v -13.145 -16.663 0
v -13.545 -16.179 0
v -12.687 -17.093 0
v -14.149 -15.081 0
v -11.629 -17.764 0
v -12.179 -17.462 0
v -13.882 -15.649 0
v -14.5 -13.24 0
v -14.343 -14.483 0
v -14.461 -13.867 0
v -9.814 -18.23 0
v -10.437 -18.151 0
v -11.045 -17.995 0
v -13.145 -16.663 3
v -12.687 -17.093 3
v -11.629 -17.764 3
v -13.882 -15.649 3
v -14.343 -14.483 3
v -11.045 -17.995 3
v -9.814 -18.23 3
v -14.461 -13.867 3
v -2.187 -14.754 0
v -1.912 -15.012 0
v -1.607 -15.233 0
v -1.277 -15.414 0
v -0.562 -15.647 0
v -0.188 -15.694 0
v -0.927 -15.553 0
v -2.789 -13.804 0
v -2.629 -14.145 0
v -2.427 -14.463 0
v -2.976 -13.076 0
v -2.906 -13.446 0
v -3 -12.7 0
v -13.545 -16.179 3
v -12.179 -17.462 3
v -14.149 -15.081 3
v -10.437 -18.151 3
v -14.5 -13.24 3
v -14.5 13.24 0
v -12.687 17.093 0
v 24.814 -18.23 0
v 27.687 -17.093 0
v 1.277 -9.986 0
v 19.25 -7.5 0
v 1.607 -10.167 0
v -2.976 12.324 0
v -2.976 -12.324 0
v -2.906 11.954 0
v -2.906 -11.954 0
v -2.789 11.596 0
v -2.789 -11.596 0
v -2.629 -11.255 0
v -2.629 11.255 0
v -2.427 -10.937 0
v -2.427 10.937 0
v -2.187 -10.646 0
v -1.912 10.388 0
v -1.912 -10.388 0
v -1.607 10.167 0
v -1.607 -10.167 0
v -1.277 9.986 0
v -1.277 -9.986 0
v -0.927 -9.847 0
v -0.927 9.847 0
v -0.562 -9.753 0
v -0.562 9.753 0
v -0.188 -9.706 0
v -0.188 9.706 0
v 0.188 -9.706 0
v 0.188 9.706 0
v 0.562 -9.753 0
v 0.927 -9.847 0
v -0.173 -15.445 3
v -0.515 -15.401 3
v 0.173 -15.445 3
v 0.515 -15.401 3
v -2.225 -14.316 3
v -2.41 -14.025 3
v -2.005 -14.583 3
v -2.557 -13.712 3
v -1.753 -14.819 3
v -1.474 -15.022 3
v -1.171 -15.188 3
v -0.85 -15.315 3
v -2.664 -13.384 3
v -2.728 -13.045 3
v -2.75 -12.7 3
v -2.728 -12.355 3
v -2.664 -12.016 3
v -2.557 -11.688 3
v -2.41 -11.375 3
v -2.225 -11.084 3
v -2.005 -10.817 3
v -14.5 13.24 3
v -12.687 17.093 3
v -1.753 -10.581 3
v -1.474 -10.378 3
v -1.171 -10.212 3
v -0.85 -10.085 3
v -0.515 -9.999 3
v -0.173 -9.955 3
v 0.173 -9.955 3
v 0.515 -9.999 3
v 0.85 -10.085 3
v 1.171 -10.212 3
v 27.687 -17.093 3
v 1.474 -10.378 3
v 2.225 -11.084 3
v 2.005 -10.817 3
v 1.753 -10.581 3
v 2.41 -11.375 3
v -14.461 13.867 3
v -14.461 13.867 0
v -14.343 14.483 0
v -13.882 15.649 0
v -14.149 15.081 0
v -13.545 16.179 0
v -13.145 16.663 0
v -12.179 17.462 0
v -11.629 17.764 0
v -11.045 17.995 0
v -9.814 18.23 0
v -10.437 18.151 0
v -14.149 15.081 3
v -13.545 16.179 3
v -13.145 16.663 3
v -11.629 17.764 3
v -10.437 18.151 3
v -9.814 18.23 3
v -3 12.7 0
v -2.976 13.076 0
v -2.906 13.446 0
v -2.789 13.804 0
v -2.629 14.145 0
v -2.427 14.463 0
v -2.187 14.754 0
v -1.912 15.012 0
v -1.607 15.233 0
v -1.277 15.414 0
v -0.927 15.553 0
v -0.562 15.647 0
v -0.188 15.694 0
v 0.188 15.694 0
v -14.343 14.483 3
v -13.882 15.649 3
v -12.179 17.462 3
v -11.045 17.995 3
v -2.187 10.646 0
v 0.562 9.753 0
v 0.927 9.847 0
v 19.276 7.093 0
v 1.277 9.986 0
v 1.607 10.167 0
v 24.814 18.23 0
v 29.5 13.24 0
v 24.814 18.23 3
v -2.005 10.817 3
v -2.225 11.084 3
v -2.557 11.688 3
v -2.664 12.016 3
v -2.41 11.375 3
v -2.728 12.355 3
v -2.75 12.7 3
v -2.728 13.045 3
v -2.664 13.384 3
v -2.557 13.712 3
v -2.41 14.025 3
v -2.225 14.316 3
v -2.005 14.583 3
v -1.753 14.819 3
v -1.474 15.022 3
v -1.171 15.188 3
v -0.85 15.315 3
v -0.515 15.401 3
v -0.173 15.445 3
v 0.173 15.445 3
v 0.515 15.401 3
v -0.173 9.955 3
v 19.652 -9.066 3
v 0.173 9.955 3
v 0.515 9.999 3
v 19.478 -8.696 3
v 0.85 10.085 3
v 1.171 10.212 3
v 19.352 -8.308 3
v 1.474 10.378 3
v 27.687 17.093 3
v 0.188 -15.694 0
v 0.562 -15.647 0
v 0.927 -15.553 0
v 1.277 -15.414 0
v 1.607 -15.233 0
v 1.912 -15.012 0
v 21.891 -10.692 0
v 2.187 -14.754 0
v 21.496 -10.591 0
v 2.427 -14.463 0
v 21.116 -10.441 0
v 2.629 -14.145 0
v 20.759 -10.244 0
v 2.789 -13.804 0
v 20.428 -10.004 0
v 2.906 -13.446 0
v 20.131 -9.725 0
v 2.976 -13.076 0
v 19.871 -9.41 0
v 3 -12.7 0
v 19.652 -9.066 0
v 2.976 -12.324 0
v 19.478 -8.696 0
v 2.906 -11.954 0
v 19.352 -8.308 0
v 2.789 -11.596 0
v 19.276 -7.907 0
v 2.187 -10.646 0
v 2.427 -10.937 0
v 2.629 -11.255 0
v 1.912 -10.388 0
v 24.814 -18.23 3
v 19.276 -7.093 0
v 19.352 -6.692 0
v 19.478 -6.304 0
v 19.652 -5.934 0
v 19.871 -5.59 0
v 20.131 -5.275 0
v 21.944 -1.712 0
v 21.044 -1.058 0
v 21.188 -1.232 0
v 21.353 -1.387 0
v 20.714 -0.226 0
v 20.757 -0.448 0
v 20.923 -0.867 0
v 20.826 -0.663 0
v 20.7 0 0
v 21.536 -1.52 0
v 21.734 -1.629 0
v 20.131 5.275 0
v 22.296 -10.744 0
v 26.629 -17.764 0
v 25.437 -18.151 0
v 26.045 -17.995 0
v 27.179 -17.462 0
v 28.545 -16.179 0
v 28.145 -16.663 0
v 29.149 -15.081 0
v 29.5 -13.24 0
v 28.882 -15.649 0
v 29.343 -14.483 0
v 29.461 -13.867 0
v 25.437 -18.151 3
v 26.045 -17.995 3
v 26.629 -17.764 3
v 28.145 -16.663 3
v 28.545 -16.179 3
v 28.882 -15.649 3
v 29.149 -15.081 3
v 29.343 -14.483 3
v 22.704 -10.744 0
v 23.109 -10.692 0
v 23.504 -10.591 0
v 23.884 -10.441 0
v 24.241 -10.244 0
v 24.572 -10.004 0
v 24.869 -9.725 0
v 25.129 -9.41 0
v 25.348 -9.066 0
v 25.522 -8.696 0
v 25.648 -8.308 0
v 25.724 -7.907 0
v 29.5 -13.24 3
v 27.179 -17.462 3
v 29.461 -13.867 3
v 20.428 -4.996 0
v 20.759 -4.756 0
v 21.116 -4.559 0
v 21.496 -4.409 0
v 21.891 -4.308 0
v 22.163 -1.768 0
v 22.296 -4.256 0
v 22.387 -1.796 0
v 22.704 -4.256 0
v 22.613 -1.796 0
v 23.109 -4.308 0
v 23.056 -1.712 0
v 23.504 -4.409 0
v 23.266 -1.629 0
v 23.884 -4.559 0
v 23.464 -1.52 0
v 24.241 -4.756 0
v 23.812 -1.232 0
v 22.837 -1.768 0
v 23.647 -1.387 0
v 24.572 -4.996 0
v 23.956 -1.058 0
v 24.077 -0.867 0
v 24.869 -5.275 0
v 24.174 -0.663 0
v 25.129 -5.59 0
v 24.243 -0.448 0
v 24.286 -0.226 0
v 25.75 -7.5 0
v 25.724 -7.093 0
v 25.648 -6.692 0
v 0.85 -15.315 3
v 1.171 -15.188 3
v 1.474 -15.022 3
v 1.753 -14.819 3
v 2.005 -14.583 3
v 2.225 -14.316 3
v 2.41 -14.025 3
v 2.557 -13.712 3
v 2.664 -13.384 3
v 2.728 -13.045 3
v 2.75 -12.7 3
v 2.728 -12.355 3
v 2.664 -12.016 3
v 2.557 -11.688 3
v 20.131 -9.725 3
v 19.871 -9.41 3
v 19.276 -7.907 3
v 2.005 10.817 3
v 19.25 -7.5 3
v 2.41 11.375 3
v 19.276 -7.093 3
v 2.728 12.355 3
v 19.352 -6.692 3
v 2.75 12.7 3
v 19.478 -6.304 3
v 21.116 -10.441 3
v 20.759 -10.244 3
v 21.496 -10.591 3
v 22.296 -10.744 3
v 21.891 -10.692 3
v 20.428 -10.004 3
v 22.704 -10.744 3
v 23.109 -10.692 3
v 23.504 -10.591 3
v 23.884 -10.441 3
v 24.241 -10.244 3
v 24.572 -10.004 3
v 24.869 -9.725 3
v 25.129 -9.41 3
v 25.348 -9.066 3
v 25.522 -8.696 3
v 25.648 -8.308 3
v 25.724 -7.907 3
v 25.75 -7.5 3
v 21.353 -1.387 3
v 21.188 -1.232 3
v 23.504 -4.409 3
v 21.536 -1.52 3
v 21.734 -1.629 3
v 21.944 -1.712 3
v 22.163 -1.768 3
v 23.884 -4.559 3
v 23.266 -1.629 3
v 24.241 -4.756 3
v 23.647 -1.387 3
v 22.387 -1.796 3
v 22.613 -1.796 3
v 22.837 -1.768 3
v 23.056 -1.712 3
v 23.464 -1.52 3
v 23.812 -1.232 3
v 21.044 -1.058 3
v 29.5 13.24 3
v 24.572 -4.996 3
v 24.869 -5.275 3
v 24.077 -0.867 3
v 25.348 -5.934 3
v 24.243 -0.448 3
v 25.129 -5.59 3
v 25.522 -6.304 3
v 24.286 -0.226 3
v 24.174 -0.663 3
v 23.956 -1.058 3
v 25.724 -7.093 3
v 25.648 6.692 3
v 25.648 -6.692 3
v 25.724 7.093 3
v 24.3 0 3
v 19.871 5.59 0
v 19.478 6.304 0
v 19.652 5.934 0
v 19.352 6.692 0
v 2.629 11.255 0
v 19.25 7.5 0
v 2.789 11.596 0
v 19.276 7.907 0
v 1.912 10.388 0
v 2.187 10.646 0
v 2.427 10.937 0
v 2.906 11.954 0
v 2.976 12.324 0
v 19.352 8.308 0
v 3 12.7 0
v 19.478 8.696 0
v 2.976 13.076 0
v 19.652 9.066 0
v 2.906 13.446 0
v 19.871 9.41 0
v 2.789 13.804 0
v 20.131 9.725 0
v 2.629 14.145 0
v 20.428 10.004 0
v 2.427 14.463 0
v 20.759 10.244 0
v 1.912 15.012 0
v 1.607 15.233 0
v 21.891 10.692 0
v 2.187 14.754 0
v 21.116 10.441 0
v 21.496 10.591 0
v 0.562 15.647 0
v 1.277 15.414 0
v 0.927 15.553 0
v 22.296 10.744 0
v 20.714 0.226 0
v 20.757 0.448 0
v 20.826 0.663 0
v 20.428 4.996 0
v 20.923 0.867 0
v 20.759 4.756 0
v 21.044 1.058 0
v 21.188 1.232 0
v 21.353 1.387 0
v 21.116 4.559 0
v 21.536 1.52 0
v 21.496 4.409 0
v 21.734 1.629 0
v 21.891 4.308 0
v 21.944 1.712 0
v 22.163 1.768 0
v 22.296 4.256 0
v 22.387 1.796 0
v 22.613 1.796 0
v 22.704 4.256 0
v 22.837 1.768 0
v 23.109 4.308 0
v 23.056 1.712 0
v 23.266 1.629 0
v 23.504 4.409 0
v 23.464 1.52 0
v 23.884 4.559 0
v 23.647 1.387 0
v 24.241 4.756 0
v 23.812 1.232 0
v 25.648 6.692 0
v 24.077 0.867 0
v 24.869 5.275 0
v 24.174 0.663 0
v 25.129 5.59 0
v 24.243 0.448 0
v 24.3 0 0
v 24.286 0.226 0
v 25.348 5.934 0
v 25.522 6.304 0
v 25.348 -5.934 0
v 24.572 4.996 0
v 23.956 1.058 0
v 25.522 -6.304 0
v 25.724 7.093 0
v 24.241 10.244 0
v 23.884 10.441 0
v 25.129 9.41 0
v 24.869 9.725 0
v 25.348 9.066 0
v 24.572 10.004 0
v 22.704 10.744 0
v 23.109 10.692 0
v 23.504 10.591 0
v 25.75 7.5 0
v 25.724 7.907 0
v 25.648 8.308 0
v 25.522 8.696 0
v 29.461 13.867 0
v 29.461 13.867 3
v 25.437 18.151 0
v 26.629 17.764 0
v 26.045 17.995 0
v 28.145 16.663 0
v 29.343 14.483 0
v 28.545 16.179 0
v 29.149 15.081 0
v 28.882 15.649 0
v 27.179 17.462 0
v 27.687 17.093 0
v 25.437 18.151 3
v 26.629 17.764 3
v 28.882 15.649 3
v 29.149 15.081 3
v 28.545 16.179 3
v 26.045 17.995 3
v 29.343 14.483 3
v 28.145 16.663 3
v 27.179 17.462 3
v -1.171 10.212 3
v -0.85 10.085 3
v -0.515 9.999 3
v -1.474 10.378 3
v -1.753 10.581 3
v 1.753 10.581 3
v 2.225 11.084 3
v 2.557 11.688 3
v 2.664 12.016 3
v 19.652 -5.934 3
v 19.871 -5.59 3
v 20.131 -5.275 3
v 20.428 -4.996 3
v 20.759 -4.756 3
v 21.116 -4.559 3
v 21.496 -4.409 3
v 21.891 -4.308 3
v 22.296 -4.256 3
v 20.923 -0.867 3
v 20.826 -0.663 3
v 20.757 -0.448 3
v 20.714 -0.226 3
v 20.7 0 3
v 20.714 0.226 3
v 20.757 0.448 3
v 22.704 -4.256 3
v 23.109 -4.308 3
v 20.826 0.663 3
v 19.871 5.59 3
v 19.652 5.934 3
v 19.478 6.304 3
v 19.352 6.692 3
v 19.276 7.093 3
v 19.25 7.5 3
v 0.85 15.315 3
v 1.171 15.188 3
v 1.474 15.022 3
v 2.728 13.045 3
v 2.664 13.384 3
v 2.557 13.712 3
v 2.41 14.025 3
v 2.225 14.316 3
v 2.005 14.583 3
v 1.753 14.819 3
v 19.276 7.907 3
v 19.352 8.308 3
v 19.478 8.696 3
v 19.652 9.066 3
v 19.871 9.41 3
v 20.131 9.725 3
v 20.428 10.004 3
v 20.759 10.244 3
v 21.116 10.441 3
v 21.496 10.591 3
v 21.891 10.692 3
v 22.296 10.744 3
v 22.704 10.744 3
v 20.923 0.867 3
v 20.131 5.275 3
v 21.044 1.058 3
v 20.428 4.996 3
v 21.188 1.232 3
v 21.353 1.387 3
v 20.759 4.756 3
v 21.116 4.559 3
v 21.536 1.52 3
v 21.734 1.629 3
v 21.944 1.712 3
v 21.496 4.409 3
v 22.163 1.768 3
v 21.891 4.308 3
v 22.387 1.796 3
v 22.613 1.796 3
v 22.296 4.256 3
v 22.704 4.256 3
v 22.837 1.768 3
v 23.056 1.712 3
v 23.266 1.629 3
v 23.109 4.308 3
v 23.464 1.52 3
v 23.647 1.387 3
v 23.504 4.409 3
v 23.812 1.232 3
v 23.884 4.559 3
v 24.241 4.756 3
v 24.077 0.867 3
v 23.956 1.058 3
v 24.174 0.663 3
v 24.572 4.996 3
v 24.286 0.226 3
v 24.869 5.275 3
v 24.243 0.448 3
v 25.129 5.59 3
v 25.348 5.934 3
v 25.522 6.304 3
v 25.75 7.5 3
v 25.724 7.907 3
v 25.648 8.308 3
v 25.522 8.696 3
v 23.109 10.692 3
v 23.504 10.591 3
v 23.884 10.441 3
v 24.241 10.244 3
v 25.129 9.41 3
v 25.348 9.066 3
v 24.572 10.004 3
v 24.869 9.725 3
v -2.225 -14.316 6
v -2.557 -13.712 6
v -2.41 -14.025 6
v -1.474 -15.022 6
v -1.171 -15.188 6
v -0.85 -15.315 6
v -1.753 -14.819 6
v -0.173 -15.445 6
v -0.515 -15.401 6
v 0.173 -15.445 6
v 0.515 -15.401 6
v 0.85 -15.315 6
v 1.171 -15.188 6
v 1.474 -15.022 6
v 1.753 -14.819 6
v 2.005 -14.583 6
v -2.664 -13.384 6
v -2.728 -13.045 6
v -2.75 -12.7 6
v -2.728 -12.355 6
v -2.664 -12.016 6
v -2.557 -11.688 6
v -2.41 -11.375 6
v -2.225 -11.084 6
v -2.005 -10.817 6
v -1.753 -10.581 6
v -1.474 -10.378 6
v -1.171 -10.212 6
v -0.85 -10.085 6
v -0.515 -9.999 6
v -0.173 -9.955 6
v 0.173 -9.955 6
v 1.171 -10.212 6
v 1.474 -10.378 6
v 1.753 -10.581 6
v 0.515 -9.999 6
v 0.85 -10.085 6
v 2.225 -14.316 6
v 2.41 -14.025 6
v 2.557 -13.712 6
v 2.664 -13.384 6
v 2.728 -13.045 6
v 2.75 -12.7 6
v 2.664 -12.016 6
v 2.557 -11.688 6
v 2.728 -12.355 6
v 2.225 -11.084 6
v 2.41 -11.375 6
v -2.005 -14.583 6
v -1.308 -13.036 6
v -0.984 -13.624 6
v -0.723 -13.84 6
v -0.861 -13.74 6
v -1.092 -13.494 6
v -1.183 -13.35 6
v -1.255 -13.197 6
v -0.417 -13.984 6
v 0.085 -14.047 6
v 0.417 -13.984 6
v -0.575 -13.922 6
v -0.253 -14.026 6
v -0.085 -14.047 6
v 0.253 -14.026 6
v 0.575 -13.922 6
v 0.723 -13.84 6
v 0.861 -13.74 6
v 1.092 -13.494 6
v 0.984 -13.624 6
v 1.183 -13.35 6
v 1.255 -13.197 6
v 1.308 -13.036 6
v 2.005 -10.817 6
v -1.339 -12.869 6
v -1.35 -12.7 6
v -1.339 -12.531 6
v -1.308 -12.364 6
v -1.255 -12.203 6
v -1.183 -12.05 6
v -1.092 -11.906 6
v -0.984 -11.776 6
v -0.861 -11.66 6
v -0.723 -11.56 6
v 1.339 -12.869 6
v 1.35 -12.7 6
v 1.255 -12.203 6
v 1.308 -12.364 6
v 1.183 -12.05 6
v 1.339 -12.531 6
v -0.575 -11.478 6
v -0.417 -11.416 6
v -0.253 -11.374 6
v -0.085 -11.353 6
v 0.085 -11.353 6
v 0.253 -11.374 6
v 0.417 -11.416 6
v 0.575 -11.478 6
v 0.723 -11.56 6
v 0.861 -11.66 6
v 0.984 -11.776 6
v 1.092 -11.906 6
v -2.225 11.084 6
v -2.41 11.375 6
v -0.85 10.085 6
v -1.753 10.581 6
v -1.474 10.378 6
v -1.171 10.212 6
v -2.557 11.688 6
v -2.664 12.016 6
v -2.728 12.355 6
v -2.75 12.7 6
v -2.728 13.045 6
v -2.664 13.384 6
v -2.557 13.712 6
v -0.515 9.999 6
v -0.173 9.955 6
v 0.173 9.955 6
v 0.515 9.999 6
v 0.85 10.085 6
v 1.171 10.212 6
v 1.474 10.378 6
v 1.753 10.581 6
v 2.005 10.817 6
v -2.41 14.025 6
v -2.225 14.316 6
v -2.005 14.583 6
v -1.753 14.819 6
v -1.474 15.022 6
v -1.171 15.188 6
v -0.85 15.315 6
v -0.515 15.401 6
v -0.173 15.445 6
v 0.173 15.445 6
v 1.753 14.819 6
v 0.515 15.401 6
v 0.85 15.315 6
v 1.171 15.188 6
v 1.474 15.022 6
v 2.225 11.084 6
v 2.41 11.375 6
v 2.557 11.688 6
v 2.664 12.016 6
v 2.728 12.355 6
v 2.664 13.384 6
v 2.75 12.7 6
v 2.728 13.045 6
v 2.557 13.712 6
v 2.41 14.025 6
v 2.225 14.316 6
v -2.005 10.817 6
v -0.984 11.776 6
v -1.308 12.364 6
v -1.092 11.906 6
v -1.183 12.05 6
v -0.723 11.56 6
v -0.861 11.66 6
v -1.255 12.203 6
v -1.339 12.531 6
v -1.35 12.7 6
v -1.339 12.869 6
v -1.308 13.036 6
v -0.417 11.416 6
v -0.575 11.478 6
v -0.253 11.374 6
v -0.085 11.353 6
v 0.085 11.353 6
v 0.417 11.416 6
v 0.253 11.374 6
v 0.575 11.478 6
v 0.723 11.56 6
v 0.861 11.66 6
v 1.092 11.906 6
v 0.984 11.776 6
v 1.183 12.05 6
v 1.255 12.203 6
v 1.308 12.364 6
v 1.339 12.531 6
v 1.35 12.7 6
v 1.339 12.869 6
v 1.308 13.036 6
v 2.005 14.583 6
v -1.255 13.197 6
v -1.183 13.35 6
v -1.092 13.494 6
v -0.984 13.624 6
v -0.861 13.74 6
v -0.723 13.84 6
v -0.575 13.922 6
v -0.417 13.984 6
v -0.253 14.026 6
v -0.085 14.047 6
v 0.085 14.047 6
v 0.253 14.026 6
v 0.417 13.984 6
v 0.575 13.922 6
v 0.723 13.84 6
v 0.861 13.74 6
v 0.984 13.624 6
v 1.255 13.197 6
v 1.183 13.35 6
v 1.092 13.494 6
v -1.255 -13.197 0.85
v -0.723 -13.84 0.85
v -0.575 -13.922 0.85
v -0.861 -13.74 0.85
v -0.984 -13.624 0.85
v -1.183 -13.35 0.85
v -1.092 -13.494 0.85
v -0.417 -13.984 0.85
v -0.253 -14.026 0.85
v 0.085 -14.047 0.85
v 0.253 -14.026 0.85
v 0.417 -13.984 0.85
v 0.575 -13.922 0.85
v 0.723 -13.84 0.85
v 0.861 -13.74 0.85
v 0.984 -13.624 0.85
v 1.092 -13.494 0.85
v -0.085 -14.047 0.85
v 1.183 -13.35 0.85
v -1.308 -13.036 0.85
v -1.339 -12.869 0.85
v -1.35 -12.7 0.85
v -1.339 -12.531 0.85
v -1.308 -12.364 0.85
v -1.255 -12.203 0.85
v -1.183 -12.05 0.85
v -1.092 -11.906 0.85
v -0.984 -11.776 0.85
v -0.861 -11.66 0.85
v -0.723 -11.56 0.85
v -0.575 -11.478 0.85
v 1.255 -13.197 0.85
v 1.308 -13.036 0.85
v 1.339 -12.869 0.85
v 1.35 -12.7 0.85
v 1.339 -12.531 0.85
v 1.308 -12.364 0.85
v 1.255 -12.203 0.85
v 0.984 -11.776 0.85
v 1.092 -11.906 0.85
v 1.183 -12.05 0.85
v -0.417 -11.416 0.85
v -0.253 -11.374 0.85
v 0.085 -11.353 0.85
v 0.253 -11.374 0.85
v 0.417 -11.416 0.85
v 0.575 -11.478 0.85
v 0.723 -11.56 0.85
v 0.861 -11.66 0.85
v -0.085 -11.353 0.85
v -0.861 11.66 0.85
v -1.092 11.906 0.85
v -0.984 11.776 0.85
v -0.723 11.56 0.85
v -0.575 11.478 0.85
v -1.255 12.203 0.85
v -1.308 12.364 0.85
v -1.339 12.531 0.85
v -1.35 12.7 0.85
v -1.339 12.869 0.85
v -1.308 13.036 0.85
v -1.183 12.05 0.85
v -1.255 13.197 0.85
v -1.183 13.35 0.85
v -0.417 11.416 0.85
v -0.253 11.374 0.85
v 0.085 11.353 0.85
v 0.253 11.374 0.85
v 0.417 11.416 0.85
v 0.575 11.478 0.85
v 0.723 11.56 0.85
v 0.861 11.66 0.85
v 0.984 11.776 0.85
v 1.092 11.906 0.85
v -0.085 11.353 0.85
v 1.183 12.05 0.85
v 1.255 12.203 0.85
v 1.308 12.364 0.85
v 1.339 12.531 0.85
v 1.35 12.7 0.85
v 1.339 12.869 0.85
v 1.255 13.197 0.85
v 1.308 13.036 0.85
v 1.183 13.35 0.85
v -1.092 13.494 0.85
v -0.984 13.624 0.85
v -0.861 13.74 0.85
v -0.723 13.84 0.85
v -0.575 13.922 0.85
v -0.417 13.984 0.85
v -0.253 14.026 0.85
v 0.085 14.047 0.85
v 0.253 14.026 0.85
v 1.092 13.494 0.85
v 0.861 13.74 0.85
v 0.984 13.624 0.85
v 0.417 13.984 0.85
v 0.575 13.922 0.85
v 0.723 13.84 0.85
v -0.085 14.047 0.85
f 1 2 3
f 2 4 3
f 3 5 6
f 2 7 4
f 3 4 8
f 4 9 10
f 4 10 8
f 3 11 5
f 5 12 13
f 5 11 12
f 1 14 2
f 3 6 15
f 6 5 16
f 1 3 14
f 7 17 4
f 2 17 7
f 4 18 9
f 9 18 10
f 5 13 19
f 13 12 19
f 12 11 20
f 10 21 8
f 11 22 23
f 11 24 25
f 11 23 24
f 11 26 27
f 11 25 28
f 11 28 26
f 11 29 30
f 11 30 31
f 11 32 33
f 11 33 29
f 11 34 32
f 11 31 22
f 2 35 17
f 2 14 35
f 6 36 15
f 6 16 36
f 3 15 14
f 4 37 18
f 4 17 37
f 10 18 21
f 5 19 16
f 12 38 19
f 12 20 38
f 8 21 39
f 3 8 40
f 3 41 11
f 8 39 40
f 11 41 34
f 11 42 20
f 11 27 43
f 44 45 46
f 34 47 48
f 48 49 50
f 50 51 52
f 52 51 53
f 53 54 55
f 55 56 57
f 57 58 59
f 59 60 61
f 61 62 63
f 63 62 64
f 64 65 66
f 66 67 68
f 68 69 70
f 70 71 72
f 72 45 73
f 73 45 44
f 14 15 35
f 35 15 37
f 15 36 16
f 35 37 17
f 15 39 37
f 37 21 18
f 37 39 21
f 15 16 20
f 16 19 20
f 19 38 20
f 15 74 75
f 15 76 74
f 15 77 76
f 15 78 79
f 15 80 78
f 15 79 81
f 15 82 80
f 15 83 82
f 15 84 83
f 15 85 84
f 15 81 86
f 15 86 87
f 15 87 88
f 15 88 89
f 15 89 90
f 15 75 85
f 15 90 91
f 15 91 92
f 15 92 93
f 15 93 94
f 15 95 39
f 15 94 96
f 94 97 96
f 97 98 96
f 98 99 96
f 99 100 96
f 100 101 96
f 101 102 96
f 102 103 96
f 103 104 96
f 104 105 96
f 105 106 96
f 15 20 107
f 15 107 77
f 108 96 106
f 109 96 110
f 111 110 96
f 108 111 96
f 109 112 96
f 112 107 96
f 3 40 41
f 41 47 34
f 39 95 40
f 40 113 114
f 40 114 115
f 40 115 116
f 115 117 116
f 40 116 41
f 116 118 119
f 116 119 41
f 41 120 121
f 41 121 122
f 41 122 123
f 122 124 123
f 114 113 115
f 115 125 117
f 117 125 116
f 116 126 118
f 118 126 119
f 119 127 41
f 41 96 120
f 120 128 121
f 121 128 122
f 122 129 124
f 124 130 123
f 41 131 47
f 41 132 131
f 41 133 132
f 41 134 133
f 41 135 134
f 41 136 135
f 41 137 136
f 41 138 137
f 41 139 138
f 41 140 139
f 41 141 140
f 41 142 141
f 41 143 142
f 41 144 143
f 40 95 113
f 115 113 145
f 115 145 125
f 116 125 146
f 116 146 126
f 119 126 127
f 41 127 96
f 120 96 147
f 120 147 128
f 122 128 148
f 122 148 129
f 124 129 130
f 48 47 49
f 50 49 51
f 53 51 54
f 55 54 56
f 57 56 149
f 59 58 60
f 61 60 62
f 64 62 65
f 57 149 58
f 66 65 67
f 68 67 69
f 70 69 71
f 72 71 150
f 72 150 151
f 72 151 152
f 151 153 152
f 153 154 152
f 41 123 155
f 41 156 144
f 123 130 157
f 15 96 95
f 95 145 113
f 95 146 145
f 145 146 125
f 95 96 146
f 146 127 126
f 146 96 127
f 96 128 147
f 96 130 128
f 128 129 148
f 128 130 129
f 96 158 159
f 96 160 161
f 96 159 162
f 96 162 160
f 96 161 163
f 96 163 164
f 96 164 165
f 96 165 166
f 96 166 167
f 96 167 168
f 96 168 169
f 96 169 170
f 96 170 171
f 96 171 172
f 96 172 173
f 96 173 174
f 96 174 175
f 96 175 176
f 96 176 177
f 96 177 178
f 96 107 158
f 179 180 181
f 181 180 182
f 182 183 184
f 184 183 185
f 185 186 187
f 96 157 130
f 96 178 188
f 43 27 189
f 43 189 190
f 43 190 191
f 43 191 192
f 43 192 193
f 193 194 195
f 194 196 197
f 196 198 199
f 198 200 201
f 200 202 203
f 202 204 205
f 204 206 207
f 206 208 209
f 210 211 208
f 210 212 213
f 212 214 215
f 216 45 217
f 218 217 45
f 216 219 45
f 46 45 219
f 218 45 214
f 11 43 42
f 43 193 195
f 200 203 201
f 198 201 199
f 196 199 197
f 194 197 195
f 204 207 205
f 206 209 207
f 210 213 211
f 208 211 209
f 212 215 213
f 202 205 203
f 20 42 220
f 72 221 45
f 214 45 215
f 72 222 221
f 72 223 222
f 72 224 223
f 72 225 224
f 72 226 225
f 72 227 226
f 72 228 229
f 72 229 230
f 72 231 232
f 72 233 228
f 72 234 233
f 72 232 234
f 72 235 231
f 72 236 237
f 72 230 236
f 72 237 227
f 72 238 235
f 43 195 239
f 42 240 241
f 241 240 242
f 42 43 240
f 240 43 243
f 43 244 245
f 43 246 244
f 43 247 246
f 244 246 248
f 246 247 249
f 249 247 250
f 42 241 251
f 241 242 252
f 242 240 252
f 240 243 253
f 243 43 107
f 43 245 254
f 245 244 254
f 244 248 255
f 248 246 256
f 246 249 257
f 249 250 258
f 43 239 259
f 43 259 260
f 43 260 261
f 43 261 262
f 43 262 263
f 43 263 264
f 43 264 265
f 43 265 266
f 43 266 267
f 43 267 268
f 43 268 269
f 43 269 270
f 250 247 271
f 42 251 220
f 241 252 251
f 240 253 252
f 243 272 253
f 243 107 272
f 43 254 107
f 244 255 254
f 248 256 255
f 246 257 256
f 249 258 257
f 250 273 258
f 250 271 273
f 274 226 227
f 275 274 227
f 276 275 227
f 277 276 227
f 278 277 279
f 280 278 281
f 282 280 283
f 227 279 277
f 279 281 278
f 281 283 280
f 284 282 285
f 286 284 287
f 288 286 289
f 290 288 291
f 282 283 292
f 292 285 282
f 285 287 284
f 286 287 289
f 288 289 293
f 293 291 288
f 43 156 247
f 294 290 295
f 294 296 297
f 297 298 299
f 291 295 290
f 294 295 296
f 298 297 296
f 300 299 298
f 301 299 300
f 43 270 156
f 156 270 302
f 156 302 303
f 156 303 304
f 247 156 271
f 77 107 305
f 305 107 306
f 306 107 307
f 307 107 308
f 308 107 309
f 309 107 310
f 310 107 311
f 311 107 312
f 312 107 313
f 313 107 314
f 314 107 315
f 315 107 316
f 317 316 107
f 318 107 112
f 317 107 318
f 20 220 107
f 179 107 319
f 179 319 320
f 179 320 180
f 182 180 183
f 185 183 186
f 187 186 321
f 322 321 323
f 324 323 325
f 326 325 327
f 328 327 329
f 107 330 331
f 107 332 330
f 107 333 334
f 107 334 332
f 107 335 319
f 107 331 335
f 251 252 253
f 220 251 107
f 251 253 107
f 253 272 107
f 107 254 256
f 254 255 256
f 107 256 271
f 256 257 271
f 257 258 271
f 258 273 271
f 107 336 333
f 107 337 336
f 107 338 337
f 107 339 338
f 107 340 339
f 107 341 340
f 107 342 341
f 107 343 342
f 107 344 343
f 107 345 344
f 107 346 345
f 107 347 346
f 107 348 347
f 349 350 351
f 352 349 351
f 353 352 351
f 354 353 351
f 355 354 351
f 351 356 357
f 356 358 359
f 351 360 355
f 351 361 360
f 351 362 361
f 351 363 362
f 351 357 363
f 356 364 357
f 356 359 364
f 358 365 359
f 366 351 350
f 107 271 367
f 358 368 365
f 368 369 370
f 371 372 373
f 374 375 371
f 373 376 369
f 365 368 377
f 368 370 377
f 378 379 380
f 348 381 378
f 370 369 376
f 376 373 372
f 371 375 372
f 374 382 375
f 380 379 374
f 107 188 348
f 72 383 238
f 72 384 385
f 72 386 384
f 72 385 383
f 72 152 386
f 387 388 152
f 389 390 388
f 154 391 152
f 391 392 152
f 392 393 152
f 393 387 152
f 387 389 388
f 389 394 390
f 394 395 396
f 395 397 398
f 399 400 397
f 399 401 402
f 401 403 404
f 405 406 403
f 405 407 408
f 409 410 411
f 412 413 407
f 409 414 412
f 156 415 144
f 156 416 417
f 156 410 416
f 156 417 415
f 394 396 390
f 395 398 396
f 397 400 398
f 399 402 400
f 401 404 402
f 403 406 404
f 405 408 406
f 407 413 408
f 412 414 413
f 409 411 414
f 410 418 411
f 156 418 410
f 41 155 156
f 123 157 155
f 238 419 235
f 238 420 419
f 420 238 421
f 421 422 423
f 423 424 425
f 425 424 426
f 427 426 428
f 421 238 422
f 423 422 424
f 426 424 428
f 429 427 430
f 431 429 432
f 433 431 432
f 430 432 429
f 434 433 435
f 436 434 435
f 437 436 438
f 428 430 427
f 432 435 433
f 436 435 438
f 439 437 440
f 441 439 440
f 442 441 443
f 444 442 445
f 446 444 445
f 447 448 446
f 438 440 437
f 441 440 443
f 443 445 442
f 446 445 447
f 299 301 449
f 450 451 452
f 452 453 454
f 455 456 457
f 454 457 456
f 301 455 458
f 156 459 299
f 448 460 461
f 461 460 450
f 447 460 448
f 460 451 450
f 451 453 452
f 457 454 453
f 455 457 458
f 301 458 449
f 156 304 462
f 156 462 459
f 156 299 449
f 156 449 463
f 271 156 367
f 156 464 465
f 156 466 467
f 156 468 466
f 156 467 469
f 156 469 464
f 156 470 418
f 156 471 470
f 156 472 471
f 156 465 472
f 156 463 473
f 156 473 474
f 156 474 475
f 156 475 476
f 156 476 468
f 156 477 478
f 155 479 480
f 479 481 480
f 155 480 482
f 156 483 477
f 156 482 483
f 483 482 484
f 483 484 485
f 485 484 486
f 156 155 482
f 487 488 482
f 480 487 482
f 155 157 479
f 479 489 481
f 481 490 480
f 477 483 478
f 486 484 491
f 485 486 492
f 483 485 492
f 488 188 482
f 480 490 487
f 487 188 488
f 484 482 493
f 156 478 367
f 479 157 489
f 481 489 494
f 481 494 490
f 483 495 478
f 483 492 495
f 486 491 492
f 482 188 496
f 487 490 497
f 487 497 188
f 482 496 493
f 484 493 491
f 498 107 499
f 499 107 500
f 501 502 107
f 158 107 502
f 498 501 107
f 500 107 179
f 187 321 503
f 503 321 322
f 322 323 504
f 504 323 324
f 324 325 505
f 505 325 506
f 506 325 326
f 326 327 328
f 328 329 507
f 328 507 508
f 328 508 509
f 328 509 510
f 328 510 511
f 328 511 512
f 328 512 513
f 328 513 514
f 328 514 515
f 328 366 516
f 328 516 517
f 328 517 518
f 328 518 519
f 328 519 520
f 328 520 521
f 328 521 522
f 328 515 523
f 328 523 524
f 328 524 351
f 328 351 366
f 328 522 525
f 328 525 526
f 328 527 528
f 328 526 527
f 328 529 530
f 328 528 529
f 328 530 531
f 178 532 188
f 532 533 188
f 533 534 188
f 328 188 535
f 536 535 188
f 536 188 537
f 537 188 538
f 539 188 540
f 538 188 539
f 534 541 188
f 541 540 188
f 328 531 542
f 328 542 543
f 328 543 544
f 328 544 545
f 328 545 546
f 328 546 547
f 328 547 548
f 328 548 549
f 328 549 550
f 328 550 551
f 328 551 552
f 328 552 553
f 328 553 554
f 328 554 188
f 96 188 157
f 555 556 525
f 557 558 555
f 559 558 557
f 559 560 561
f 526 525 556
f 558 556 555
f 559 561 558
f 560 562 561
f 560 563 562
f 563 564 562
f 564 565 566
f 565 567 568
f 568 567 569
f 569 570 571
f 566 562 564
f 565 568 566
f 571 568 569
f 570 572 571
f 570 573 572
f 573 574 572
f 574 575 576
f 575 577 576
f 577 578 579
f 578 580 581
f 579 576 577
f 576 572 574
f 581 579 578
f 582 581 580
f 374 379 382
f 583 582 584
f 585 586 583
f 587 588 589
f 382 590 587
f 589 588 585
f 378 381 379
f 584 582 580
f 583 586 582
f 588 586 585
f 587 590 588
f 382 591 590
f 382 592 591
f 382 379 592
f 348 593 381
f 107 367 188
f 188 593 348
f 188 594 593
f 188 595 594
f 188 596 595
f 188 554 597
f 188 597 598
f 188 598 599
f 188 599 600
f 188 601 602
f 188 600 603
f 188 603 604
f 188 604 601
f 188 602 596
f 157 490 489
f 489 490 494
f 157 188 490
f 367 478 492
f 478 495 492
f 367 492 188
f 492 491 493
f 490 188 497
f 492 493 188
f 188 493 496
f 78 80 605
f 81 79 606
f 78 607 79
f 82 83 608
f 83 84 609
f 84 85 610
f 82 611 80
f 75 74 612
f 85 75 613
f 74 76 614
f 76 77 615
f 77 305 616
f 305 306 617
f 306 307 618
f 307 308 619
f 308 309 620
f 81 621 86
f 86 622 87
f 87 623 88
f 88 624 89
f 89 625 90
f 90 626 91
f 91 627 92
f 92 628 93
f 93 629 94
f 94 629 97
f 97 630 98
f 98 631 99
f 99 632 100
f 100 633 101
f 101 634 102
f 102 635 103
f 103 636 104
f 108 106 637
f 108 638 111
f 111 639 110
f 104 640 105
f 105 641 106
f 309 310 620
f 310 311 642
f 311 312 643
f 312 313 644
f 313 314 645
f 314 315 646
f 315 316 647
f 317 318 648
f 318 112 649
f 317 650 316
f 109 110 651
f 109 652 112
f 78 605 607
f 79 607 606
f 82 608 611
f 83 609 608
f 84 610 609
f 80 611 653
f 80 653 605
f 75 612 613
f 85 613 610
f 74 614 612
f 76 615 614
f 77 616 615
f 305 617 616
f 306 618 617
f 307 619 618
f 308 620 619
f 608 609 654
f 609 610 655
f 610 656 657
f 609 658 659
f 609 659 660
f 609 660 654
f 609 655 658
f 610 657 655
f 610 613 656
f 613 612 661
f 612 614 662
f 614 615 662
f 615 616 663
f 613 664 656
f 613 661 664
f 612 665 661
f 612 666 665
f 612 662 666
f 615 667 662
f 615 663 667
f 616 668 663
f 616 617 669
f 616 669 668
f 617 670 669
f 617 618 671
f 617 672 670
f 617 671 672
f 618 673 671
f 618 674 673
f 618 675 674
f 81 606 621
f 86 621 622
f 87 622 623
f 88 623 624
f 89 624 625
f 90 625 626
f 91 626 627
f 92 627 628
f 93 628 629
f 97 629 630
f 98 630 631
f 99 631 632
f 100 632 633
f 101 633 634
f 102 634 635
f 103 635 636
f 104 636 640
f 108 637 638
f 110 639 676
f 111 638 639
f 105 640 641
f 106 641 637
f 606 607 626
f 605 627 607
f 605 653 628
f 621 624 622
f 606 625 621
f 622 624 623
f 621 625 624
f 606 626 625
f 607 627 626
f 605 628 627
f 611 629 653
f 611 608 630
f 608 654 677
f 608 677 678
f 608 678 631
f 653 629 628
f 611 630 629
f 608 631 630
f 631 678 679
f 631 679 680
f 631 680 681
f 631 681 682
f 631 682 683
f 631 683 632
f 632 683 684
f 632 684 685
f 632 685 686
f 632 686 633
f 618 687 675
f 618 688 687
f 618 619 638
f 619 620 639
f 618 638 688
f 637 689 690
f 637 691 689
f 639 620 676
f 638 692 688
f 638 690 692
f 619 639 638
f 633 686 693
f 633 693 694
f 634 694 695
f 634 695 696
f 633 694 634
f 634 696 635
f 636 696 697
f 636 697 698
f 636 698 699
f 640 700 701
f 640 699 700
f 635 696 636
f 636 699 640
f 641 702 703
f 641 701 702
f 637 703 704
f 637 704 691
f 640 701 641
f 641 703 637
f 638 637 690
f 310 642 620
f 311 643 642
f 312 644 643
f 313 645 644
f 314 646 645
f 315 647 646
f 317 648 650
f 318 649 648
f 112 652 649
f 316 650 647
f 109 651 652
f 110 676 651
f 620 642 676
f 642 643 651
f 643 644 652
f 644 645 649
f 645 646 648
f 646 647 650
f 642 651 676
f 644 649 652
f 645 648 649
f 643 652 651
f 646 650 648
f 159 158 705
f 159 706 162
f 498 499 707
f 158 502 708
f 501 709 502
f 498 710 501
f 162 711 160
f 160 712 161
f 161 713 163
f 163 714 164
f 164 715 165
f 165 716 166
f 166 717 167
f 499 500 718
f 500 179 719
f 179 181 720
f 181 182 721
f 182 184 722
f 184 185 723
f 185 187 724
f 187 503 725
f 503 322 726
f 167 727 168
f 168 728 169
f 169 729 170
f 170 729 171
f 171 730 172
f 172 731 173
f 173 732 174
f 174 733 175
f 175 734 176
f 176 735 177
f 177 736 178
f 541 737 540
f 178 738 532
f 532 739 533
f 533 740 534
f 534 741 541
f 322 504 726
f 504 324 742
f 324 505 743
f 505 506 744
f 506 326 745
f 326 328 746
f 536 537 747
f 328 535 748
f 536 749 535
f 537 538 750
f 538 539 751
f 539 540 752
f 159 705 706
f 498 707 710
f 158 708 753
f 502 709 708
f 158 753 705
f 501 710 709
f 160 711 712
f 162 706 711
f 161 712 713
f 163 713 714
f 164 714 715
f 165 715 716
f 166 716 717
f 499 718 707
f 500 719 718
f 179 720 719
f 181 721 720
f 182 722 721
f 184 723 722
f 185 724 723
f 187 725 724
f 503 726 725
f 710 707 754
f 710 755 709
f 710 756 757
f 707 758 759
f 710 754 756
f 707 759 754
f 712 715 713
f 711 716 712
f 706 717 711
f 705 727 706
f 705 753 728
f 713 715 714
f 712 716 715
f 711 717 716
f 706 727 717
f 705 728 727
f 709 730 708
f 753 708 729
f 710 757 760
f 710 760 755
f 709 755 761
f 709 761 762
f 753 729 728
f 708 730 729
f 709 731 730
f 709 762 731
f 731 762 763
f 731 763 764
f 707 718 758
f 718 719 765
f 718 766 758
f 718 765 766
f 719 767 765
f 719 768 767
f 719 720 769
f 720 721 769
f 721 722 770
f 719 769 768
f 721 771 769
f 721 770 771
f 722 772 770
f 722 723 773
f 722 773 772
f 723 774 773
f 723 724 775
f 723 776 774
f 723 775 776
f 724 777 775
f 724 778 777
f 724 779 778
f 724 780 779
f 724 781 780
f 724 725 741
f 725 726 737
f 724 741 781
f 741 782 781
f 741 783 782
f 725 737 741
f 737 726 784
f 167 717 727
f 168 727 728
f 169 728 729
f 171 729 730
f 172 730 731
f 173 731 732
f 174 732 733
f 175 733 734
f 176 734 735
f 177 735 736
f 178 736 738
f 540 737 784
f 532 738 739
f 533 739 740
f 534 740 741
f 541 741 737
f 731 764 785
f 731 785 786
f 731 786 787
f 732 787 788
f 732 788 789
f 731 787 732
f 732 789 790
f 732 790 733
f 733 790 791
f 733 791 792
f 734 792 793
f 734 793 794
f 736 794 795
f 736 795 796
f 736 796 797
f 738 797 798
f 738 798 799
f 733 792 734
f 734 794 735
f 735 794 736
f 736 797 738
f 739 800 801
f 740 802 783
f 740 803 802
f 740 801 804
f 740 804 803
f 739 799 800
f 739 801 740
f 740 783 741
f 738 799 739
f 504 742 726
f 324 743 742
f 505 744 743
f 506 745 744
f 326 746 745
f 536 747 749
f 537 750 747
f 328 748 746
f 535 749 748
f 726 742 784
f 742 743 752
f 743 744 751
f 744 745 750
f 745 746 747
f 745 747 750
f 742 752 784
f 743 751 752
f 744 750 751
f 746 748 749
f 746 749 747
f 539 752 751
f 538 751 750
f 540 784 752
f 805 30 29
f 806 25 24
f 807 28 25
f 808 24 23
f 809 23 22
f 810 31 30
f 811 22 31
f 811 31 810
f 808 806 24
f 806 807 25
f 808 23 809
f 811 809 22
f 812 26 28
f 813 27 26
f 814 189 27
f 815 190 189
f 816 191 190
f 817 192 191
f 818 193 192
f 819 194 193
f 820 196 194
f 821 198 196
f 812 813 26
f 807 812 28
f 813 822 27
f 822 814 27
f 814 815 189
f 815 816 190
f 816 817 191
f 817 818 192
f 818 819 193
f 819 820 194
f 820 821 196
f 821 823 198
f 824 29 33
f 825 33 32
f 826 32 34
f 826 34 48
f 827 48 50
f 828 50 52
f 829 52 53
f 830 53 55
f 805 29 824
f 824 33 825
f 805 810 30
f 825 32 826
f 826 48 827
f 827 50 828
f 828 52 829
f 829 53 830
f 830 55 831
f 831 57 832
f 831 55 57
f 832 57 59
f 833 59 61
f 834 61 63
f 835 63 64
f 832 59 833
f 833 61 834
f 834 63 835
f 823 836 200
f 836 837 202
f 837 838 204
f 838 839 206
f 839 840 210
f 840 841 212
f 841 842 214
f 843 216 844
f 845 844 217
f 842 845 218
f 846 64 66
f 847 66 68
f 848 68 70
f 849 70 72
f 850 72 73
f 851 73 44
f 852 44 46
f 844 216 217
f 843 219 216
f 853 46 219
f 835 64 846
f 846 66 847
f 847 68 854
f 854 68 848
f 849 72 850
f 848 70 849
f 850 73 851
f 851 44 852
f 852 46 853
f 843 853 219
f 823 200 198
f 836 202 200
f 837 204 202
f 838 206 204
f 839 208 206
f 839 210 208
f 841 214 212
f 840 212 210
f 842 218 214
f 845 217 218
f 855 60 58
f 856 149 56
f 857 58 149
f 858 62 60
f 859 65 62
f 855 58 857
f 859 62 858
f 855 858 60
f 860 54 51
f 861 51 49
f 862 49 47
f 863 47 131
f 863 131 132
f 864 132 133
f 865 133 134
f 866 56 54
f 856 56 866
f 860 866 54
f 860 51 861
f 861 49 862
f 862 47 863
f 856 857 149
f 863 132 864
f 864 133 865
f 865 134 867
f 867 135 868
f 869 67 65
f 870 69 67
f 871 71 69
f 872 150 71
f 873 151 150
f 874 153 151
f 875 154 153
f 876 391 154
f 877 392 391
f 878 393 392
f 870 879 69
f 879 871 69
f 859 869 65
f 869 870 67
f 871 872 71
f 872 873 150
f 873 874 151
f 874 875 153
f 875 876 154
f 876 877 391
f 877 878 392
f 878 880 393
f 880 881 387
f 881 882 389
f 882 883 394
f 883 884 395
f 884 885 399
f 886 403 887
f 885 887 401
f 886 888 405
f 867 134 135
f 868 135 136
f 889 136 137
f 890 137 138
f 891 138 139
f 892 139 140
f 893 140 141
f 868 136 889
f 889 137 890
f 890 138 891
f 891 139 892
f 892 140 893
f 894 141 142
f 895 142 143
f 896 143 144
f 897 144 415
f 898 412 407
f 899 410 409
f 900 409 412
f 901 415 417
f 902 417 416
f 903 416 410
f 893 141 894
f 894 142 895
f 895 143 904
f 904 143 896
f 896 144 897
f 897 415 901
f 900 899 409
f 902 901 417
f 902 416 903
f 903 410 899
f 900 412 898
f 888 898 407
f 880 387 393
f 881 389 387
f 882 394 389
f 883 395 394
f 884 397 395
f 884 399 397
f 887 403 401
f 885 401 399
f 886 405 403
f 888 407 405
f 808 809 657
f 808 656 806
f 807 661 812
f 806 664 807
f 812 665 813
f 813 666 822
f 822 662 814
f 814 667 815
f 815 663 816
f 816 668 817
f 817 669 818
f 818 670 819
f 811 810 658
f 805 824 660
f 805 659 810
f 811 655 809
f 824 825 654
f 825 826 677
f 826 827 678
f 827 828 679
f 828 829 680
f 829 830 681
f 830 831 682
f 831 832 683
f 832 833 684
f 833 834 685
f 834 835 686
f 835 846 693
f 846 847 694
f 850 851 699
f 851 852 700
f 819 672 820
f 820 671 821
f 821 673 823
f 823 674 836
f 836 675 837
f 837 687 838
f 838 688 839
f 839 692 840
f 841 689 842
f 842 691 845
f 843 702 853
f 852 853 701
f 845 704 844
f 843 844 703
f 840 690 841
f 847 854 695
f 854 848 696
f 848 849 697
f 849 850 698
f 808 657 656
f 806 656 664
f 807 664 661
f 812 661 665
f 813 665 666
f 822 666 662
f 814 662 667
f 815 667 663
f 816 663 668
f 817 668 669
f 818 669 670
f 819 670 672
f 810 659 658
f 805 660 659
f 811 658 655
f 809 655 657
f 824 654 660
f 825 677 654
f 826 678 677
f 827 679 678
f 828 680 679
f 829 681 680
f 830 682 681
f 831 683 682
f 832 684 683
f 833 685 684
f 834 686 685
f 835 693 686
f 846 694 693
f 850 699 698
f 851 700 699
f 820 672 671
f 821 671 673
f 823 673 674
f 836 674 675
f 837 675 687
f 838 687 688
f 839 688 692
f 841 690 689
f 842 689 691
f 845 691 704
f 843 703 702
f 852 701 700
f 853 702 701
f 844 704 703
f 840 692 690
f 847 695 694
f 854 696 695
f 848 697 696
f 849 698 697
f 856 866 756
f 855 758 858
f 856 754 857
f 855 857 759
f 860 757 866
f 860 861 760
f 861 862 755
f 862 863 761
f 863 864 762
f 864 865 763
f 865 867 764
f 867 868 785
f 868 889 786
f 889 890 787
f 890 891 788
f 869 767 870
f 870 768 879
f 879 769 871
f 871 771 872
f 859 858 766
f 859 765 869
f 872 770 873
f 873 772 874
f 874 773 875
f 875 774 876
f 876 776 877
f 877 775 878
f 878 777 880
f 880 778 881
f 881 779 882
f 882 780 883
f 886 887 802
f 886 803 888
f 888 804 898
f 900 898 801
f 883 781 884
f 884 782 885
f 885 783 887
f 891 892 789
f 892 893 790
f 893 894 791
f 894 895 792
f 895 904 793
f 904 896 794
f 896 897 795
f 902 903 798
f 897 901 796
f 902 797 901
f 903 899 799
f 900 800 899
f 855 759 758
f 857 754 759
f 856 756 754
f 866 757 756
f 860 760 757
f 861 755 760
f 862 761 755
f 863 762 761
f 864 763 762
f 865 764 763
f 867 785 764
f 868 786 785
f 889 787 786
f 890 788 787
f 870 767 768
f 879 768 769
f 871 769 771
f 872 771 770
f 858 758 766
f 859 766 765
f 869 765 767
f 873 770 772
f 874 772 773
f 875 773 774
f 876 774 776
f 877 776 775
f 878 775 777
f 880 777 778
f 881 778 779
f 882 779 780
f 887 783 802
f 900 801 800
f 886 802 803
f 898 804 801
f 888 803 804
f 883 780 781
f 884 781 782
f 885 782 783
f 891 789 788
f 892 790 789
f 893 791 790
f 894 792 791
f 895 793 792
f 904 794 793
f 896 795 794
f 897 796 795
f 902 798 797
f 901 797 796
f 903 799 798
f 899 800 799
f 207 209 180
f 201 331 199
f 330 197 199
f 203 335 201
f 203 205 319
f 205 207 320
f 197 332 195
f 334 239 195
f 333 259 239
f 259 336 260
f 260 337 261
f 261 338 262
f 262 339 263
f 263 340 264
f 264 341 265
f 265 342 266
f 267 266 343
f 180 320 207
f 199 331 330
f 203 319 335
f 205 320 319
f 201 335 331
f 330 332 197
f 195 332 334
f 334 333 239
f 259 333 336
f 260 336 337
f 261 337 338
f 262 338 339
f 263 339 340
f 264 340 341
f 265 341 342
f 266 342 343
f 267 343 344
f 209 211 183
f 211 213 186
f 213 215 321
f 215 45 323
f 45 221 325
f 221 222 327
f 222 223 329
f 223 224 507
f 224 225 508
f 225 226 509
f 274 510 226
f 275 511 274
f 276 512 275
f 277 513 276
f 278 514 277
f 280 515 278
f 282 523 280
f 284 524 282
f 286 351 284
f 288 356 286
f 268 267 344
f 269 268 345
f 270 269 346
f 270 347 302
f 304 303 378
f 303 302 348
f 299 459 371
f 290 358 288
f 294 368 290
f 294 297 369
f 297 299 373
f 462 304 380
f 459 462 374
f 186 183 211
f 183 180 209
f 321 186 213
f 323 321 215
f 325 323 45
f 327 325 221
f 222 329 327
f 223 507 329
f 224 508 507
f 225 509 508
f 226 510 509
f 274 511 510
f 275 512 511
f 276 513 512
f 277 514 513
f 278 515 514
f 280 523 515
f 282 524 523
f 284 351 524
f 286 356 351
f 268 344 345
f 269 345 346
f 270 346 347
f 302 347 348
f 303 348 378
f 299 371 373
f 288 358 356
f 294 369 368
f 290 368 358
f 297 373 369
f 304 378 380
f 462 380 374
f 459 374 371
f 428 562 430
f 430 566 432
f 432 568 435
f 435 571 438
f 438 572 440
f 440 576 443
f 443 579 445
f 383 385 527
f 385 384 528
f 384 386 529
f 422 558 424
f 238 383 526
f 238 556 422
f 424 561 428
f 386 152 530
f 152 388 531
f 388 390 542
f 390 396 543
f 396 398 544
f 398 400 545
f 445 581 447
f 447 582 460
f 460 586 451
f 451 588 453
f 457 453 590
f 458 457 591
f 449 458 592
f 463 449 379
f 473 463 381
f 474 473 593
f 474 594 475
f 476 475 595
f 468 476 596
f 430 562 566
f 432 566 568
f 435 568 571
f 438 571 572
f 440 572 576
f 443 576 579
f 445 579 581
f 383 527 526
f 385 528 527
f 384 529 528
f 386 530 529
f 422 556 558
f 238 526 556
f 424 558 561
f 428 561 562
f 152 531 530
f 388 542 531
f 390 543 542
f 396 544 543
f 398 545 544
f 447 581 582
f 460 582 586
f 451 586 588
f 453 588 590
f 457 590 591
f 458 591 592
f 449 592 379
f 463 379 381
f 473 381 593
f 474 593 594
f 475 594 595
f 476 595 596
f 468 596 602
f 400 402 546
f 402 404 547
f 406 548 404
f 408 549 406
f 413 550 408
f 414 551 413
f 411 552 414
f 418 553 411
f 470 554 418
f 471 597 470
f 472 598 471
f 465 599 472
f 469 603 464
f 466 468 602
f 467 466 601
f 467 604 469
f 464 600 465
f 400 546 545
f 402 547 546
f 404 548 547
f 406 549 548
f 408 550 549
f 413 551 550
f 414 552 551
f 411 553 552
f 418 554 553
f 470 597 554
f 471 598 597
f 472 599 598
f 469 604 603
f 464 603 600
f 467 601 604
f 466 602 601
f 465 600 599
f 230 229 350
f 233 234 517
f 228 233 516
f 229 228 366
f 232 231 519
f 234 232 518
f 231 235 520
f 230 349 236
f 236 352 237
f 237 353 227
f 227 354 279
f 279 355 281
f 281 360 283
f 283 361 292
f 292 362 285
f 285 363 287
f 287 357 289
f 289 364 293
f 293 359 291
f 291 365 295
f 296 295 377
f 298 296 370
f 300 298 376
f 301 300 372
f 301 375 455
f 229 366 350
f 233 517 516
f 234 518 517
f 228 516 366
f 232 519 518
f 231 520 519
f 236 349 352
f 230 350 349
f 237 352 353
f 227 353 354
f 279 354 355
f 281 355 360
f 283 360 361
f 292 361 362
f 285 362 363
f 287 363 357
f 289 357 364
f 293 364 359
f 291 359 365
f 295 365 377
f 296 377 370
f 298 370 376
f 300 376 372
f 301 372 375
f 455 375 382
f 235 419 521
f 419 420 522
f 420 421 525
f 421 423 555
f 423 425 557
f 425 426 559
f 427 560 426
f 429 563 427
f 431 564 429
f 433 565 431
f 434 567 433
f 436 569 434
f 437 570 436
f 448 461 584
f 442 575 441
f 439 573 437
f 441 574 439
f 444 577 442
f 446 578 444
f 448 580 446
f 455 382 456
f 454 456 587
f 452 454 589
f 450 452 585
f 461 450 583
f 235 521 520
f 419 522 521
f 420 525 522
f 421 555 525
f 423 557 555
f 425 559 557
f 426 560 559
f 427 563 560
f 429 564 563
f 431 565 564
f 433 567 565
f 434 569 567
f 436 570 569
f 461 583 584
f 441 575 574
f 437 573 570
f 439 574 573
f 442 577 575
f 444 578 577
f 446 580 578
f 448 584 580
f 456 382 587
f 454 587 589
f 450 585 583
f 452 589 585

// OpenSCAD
$fn = 50;

difference() {
	union() {
		translate(v = [7.5, 0.0, 0]) {
			hull() {
				translate(v = [-17.0, 13.240000000000002, 0]) {
					cylinder(h = 3, r = 5);
				}
				translate(v = [17.0, 13.240000000000002, 0]) {
					cylinder(h = 3, r = 5);
				}
				translate(v = [-17.0, -13.240000000000002, 0]) {
					cylinder(h = 3, r = 5);
				}
				translate(v = [17.0, -13.240000000000002, 0]) {
					cylinder(h = 3, r = 5);
				}
			}
		}
		translate(v = [0.0, -12.7, 3.0]) {
			cylinder(h = 3, r = 2.75);
		}
		translate(v = [0.0, 12.7, 3.0]) {
			cylinder(h = 3, r = 2.75);
		}
	}
	union() {
		translate(v = [0.0, -12.7, 0]) {
			rotate(a = [0, 180, 0]) {
				difference() {
					union() {
						translate(v = [0, 0, -6.0]) {
							cylinder(h = 6, r = 1.0);
						}
						translate(v = [0, 0, -0.85]) {
							cylinder(h = 0.85, r1 = 1.35, r2 = 3.0);
						}
						translate(v = [0, 0, -6.0]) {
							cylinder(h = 6, r = 1.35);
						}
						translate(v = [0, 0, -6.0]) {
							cylinder(h = 6, r = 1.0);
						}
					}
					union();
				}
			}
		}
		translate(v = [0.0, 12.7, 0]) {
			rotate(a = [0, 180, 0]) {
				difference() {
					union() {
						translate(v = [0, 0, -6.0]) {
							cylinder(h = 6, r = 1.0);
						}
						translate(v = [0, 0, -0.85]) {
							cylinder(h = 0.85, r1 = 1.35, r2 = 3.0);
						}
						translate(v = [0, 0, -6.0]) {
							cylinder(h = 6, r = 1.35);
						}
						translate(v = [0, 0, -6.0]) {
							cylinder(h = 6, r = 1.0);
						}
					}
					union();
				}
			}
		}
		translate(v = [22.5, -7.5, -1]) {
			cylinder(h = 5, r = 3.25);
		}
		translate(v = [22.5, 7.5, -1]) {
			cylinder(h = 5, r = 3.25);
		}
		translate(v = [22.5, 0.0, -1]) {
			cylinder(h = 5, r = 1.8);
		}
	}
}
